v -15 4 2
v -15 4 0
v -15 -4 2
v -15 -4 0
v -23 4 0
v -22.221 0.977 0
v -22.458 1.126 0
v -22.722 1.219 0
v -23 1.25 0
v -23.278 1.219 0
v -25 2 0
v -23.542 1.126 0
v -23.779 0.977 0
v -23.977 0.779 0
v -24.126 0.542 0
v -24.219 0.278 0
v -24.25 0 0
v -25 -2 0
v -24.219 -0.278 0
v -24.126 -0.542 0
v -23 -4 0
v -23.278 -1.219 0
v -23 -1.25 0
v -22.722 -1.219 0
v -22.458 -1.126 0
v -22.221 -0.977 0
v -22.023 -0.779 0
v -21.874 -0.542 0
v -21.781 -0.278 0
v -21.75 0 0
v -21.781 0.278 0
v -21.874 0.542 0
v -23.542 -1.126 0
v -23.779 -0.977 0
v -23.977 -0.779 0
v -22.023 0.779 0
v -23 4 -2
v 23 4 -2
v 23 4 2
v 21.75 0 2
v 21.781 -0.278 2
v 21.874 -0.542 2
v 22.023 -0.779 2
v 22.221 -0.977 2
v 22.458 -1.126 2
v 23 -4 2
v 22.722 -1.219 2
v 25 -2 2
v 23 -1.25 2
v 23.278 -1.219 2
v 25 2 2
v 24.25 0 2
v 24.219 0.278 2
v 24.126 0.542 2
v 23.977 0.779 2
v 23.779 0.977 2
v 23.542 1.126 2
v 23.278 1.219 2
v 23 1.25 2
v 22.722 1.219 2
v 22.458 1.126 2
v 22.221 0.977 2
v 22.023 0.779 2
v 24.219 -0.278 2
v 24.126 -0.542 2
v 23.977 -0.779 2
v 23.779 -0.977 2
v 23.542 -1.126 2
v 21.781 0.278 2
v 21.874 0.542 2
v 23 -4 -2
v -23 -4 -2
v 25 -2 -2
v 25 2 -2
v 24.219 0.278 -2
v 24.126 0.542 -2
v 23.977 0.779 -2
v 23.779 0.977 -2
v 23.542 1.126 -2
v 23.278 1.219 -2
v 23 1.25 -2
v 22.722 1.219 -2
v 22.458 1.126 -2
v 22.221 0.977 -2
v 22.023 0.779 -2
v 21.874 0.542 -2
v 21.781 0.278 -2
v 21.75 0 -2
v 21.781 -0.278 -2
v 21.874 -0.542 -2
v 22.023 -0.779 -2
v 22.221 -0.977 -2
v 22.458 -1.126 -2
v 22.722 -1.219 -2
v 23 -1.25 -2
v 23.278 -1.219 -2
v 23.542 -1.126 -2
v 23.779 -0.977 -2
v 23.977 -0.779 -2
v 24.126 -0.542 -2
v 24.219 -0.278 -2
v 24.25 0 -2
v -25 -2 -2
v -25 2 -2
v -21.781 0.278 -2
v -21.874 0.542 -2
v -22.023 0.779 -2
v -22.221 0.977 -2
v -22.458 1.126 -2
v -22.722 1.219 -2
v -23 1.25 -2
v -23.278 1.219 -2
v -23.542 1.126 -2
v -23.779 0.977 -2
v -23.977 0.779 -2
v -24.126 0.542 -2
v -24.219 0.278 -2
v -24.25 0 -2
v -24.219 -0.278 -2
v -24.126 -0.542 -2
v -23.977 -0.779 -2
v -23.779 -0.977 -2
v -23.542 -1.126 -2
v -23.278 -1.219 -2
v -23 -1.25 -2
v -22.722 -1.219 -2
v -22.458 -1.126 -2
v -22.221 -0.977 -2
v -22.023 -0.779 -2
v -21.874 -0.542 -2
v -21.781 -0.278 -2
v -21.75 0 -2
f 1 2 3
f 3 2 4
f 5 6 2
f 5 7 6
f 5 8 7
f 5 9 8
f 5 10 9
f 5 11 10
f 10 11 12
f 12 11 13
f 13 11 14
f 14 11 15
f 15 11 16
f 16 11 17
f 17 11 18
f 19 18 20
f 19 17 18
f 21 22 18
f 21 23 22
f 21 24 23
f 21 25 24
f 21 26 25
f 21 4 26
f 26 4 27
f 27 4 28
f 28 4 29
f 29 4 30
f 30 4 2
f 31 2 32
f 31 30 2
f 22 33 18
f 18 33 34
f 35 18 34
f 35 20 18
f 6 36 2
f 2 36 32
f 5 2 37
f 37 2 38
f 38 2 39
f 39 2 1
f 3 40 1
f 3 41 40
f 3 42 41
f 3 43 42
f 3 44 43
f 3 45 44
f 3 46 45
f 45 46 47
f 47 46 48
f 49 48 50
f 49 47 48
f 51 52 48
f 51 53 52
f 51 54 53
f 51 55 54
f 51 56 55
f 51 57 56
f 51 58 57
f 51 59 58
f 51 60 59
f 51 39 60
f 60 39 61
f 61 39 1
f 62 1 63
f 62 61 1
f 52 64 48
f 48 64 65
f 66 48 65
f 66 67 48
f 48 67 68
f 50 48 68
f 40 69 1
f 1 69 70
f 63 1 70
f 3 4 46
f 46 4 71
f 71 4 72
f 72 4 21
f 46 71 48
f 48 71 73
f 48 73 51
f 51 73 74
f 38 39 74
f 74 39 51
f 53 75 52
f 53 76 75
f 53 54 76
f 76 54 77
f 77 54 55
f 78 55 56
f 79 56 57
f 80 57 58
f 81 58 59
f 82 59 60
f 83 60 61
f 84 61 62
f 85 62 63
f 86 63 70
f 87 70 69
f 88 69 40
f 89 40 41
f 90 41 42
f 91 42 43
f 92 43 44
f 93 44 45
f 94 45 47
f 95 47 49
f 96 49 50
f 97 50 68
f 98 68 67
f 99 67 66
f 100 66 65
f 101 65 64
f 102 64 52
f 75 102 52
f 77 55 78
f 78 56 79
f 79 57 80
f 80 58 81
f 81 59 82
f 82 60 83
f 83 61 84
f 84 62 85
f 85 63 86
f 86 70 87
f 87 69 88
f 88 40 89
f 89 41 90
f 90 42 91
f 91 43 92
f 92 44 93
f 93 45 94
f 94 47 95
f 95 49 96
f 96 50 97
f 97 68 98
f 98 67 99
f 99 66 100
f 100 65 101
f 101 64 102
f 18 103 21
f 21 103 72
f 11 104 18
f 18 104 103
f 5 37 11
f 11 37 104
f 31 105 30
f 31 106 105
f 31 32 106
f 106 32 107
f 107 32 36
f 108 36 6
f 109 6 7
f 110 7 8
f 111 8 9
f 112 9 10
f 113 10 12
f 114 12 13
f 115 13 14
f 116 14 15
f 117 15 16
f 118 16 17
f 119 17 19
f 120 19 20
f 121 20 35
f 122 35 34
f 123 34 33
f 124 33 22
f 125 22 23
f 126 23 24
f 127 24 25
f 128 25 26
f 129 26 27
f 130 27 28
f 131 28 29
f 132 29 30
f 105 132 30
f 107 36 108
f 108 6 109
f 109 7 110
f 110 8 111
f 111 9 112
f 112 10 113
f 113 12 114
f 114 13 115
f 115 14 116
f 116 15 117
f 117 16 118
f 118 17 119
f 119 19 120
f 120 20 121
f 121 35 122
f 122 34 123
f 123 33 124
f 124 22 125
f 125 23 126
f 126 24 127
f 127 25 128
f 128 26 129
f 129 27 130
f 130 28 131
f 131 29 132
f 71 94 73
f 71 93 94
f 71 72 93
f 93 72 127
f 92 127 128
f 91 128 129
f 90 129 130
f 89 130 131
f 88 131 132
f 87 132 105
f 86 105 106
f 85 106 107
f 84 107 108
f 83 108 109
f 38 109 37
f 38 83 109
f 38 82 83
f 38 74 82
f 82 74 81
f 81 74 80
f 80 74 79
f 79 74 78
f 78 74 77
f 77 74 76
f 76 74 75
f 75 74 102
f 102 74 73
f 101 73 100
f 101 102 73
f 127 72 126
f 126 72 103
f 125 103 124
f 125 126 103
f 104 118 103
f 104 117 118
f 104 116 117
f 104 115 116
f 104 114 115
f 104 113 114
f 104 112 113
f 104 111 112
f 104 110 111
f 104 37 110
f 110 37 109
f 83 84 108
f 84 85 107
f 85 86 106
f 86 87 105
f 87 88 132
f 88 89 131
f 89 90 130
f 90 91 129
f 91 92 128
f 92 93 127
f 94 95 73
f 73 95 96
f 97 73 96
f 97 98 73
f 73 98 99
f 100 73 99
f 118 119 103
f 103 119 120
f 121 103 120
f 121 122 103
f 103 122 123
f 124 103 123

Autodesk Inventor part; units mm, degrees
ref_plane "YZ Plane" through (0, 0, 0) normal (1, 0, 0) x (0, 1, 0)
ref_plane "XZ Plane" through (0, 0, 0) normal (0, 1, 0) x (-1, 0, 0)
ref_plane "XY Plane" through (0, 0, 0) normal (0, 0, 1) x (1, 0, 0)
sketch "スケッチ1" plane through (0, 0, 0) normal (0, 1, 0) x (-1, 0, 0)
  line L0 (-25, -2) -> (25, -2)
  line L1 (25, -2) -> (25, 2)
  line L2 (25, 2) -> (-25, 2)
  line L3 (-25, 2) -> (-25, -2)
  line L4 (-25, -2) -> (25, 2) construction
  line L5 (25, -2) -> (-25, 2) construction
  point P0 (0, 0)
  dimension "d0" = 50
  dimension "d1" = 4
extrude "押し出し1" add sketch "スケッチ1" along normal mid plane 8
sketch "スケッチ2" plane through (0, 0, 0) normal (0, 0, 1) x (1, 0, 0)
  circle A0 centre (-23, 0) radius 1.25
  line L0 (-25, -4) -> (-25, 4) projected
  circle A1 centre (23, 0) radius 1.25
  line L1 (25, -4) -> (25, 4) projected
  point P0 (0, 0)
  dimension "d4" = 2.5
  dimension "d5" = 2
  dimension "d14" = 2.5
  dimension "d15" = 2
extrude "押し出し2" cut sketch "スケッチ2" along normal mid plane 5 contours A0
chamfer "面取り1" distance 2 angle 45 1 edges at (-25, 4, 0)
chamfer "面取り2" distance 2 angle 45 1 edges at (-25, -4, 0)
sketch "スケッチ3" plane through (0, 0, 0) normal (0, 0, 1) x (1, 0, 0)
  circle A0 centre (23, 0) radius 1.25
  line L0 (25, -4) -> (25, 4) projected
  point P0 (0, 0)
  dimension "d16" = 2.5
  dimension "d17" = 2
extrude "押し出し3" cut sketch "スケッチ3" along normal mid plane 5
chamfer "面取り3" distance 2 angle 45 1 edges at (25, 4, 0)
chamfer "面取り4" distance 2 angle 45 1 edges at (25, -4, 0)
sketch "スケッチ4" plane through (0, -4, 0) normal (0, -1, 0) x (1, 0, 0)
  line L0 (-25, -2) -> (-25, 2) projected
  line L1 (-25, 0) -> (-15, 0)
  line L2 (-15, 0) -> (-15, 2)
  line L3 (-15, 2) -> (-25, 2)
  line L4 (-25, 2) -> (-25, 0)
  point P0 (0, 0)
  dimension "d26" = 10
extrude "押し出し4" cut sketch "スケッチ4" against normal blind 10
properties part number "promo_arm1"
